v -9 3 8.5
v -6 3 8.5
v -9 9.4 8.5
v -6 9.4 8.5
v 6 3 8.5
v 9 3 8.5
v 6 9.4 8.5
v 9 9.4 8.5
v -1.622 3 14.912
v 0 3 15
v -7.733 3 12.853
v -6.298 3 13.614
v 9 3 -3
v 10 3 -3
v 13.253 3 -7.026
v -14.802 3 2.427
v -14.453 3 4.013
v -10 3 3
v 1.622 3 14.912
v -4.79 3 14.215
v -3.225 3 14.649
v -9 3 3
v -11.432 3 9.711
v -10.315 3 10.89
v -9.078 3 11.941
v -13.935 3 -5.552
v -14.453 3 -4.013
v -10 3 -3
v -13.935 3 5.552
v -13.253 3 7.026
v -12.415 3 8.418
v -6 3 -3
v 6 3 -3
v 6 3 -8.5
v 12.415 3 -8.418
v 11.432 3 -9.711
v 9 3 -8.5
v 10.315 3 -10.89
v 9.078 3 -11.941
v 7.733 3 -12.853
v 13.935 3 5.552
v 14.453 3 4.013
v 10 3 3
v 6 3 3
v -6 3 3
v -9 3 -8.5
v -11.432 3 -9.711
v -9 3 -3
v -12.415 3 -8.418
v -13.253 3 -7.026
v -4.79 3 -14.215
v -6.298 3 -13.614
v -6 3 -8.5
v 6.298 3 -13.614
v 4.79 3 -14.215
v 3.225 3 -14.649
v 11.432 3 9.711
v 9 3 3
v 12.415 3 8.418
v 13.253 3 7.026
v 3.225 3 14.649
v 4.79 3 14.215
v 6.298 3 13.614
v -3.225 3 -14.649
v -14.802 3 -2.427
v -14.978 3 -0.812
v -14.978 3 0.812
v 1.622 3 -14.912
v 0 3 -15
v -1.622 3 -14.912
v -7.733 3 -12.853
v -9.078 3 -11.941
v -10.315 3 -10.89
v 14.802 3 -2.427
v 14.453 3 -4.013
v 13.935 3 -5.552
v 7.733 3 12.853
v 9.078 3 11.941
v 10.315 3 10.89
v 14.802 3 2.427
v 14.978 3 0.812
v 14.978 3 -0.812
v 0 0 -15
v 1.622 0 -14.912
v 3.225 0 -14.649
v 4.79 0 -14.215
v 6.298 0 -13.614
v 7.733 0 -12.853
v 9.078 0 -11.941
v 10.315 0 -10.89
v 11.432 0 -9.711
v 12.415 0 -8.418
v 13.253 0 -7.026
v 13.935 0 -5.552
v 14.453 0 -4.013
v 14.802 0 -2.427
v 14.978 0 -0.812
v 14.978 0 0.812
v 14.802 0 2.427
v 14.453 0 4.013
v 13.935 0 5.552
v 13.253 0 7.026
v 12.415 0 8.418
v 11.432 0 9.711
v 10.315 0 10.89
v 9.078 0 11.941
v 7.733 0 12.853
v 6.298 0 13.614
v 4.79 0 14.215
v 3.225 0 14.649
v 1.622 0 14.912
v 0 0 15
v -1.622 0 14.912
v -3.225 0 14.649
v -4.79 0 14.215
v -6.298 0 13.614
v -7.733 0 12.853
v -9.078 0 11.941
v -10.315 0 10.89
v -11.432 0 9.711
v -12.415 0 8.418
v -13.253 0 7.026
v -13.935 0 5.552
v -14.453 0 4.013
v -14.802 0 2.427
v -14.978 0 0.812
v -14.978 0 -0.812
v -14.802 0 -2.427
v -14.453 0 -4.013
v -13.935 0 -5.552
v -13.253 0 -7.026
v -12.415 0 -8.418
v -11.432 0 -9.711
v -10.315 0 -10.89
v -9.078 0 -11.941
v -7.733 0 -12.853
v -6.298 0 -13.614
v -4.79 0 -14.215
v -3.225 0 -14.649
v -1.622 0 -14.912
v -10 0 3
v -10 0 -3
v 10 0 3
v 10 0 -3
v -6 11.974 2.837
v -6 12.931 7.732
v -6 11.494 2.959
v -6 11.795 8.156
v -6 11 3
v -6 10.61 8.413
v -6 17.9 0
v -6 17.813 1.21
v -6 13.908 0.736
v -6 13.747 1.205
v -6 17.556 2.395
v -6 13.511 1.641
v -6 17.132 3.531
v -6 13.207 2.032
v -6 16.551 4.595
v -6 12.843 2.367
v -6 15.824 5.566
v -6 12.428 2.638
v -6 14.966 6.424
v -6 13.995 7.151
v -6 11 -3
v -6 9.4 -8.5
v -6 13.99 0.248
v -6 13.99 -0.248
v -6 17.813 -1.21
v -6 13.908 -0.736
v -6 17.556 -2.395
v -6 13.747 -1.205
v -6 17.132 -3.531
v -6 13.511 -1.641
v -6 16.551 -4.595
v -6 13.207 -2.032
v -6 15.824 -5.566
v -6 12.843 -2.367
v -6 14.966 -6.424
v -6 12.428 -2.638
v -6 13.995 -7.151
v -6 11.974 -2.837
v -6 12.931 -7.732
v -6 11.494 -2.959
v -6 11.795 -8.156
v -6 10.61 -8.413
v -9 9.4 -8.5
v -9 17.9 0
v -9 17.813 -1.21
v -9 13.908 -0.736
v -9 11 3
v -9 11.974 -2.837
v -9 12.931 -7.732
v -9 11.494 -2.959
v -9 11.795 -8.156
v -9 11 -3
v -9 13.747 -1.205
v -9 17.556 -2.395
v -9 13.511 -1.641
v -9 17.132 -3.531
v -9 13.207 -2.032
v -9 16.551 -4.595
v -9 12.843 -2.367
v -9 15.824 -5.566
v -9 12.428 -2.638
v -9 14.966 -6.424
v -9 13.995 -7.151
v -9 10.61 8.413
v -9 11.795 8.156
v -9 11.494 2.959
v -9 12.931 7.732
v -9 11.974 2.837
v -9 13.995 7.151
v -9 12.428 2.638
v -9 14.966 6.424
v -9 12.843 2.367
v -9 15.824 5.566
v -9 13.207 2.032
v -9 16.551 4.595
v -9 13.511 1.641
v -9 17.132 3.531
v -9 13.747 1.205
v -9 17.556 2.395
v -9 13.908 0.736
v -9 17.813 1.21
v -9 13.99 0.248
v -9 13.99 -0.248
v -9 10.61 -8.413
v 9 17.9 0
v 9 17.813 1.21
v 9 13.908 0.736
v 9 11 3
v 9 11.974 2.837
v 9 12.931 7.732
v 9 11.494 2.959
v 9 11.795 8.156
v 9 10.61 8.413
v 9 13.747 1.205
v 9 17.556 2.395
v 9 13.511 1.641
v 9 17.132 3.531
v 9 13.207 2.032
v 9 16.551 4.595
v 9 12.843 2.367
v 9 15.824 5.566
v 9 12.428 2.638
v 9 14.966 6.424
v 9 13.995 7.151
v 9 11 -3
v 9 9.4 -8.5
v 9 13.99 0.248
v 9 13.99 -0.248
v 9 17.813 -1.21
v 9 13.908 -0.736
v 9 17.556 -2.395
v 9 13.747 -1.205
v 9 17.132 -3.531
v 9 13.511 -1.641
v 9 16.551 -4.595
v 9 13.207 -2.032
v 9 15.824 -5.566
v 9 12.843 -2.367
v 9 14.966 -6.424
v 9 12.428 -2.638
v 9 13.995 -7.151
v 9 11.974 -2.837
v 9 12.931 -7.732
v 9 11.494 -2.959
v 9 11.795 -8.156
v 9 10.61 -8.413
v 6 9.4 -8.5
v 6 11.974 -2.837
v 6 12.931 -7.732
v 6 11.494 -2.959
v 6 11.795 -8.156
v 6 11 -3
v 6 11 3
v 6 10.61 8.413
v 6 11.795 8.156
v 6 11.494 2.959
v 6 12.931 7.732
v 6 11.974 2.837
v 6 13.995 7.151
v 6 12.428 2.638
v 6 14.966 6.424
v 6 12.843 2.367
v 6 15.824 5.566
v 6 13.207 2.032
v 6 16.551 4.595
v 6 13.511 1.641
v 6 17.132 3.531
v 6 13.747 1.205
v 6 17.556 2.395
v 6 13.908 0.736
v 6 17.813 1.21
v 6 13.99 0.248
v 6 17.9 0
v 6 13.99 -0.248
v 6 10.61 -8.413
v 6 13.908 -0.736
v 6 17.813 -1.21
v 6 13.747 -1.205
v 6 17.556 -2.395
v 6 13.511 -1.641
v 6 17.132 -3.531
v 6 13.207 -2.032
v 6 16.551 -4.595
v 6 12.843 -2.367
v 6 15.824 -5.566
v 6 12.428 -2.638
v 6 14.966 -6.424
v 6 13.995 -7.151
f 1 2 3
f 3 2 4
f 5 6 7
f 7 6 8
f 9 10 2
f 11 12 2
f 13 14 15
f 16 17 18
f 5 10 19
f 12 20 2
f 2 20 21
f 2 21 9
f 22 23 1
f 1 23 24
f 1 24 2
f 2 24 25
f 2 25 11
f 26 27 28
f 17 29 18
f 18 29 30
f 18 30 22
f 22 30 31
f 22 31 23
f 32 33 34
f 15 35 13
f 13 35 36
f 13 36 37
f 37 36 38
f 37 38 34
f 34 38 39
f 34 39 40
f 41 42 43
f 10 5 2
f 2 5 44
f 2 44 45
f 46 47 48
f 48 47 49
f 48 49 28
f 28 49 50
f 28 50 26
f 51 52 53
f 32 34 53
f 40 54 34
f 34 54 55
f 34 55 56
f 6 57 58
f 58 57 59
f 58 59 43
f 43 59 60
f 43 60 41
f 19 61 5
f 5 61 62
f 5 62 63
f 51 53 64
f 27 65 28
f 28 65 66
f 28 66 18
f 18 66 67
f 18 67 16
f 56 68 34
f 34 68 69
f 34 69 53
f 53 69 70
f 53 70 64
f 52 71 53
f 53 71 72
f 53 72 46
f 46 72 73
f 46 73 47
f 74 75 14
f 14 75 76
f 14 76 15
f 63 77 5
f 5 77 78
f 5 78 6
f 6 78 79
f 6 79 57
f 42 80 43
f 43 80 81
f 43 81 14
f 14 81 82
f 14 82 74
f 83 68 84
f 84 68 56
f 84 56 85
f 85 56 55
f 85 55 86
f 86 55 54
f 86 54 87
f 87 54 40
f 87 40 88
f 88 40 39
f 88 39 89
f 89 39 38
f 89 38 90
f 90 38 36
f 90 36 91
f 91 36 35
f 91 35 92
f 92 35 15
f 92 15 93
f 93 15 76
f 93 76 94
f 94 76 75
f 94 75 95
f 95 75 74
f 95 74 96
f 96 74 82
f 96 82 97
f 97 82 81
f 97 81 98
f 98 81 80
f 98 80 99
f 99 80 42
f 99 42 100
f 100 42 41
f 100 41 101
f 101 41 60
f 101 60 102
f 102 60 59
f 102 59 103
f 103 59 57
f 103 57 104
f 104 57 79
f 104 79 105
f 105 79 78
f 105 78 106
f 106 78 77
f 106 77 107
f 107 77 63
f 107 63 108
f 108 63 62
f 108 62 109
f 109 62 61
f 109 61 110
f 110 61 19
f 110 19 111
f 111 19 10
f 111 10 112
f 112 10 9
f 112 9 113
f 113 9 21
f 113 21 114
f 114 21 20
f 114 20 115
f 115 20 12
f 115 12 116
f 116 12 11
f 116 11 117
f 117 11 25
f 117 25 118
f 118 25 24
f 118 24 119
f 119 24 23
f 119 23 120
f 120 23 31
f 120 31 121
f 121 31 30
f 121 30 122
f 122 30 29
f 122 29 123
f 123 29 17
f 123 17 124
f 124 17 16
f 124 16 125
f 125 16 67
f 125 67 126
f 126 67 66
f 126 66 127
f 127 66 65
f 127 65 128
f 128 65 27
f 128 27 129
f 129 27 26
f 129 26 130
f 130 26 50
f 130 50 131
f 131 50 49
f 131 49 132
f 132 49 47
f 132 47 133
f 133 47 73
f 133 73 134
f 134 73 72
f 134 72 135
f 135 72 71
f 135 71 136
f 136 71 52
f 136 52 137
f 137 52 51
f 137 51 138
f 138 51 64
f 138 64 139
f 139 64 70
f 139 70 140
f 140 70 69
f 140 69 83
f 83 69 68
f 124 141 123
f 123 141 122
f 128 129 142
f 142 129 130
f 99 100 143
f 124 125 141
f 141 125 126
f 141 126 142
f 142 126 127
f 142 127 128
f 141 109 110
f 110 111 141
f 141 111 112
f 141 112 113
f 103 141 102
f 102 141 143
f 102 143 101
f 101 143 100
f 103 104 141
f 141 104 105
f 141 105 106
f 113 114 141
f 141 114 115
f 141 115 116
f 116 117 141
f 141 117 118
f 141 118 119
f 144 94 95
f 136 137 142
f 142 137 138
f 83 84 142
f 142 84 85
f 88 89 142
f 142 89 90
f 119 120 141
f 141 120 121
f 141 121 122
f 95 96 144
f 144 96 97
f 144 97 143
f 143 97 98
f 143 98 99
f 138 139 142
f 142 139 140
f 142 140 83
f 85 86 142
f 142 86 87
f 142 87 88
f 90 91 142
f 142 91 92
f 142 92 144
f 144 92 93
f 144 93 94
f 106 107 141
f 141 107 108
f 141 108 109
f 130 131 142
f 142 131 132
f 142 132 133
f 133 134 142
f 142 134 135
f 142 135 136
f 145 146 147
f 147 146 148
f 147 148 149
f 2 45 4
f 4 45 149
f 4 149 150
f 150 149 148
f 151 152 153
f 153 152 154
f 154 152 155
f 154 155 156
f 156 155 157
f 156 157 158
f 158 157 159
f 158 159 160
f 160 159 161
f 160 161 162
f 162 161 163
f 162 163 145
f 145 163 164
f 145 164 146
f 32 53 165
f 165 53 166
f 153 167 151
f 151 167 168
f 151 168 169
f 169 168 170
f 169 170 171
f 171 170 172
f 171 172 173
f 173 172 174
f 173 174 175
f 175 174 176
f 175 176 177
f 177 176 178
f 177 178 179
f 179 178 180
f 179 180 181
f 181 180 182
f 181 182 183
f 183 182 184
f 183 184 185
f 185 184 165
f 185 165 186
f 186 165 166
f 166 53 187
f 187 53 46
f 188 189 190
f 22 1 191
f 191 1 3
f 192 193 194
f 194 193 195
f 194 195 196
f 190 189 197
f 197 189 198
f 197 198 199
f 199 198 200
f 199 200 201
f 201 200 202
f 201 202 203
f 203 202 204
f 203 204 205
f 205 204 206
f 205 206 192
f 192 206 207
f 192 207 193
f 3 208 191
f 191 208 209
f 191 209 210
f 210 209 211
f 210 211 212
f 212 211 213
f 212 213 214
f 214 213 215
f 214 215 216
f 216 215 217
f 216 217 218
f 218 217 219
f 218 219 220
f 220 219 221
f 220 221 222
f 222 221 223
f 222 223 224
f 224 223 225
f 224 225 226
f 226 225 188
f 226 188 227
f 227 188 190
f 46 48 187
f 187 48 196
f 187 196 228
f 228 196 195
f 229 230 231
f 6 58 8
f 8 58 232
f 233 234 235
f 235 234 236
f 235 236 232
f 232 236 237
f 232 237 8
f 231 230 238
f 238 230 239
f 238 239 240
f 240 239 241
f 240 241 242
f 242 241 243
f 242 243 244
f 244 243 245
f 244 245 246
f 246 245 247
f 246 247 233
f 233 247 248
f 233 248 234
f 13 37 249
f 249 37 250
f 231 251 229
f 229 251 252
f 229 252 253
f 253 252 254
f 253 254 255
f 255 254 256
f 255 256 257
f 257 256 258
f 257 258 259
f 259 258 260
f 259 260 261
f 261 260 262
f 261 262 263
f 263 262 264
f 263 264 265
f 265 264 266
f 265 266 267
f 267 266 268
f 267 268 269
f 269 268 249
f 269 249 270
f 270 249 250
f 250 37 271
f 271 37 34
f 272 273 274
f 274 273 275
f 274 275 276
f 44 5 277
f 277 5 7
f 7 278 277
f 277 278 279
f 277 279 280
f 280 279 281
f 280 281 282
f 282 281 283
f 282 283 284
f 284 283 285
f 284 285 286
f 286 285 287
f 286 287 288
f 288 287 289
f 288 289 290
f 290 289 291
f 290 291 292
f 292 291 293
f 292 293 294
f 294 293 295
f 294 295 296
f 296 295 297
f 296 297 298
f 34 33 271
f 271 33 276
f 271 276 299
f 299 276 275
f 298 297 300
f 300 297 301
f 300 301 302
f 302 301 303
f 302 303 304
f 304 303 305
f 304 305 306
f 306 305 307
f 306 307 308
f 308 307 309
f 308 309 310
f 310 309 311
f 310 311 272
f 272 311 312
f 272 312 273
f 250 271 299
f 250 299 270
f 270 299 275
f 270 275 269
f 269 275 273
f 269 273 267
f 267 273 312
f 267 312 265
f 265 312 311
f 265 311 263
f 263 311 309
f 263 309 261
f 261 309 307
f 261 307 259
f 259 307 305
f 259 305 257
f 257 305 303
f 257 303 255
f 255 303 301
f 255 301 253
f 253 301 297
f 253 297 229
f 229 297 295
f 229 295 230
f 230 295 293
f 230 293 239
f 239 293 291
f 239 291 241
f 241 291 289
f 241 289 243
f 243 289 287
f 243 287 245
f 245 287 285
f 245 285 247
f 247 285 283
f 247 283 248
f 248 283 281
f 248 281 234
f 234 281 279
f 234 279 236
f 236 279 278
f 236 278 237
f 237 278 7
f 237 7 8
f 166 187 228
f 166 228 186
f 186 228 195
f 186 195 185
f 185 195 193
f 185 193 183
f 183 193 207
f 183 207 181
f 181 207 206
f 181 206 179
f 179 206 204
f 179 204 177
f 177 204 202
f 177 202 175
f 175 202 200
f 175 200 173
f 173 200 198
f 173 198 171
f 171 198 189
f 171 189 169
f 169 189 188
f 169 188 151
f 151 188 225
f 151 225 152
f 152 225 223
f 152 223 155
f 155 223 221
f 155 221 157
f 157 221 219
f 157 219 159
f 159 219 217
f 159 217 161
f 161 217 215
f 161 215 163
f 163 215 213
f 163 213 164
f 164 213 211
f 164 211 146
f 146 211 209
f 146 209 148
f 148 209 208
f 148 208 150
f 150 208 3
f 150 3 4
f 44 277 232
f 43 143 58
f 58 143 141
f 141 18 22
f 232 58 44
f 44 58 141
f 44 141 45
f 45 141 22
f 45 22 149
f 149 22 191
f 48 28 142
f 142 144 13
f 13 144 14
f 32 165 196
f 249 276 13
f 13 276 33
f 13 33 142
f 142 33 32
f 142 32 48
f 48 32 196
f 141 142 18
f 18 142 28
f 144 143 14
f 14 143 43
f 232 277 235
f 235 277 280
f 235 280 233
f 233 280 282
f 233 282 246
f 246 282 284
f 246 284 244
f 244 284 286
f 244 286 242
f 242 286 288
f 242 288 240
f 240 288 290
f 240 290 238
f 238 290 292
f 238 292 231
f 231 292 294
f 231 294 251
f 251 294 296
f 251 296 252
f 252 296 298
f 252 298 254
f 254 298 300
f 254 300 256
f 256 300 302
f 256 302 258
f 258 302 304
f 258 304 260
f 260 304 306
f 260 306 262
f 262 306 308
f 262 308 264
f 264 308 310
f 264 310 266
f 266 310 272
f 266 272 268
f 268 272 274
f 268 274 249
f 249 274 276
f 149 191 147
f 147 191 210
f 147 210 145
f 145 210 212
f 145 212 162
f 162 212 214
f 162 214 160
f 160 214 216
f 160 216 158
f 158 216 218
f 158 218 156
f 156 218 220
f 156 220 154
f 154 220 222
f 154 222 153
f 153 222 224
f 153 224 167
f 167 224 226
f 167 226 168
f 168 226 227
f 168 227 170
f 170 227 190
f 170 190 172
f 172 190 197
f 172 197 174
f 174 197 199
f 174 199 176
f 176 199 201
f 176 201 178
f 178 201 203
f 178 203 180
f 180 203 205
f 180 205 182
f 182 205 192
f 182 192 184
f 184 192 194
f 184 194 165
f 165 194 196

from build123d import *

# Parameters (mm, degrees)
SKETCH1_R           = 15
BOSS_EXTRUDE1_DEPTH = 3
SKETCH2_W           = 3
SKETCH2_H           = 17
BOSS_EXTRUDE2_DEPTH = 15
CUT_EXTRUDE1_DEPTH  = 25
SKETCH4_W           = 20
SKETCH4_H           = 6
CUT_EXTRUDE2_DEPTH  = 11
CUT_EXTRUDE3_DEPTH  = 25


with BuildPart() as part:
    # Sketch1 → Boss-Extrude1 (new body)
    with BuildSketch(Plane(origin=(0, 0, 0), x_dir=(1, 0, 0), z_dir=(0, 1, 0))):
        Circle(SKETCH1_R)
    extrude(amount=BOSS_EXTRUDE1_DEPTH)

    # Sketch2 → Boss-Extrude2 (add)
    with BuildSketch(Plane(origin=(0, 3, 0), x_dir=(1, 0, 0), z_dir=(0, 1, 0))):
        with Locations((-7.5, 0)):
            Rectangle(SKETCH2_W, SKETCH2_H)
        with Locations((7.5, 0)):
            Rectangle(SKETCH2_W, SKETCH2_H)
    extrude(amount=BOSS_EXTRUDE2_DEPTH)

    # Sketch3 → Cut-Extrude1 (cut, through all)
    with BuildSketch(Plane.ZY.offset(9)):
        with BuildLine():
            Line((-8.5, 9.4), (-8.5, 18))
            Line((-8.5, 18), (8.5, 18))
            Line((8.5, 18), (8.5, 9.4))
            ThreePointArc((8.5, 9.4), (0, 17.9), (-8.5, 9.4))
        make_face()
    extrude(amount=-CUT_EXTRUDE1_DEPTH, mode=Mode.SUBTRACT)

    # Sketch4 → Cut-Extrude2 (cut)
    with BuildSketch(Plane(origin=(0, 0, 0), x_dir=(-1, 0, 0), z_dir=(0, -1, 0))):
        Rectangle(SKETCH4_W, SKETCH4_H)
    extrude(amount=-CUT_EXTRUDE2_DEPTH, mode=Mode.SUBTRACT)

    # Sketch5 → Cut-Extrude3 (cut, through all)
    with BuildSketch(Plane.ZY.offset(9)):
        with BuildLine():
            Line((3, 11), (-3, 11))
            ThreePointArc((-3, 11), (0, 14), (3, 11))
        make_face()
    extrude(amount=-CUT_EXTRUDE3_DEPTH, mode=Mode.SUBTRACT)


solid = part.part
